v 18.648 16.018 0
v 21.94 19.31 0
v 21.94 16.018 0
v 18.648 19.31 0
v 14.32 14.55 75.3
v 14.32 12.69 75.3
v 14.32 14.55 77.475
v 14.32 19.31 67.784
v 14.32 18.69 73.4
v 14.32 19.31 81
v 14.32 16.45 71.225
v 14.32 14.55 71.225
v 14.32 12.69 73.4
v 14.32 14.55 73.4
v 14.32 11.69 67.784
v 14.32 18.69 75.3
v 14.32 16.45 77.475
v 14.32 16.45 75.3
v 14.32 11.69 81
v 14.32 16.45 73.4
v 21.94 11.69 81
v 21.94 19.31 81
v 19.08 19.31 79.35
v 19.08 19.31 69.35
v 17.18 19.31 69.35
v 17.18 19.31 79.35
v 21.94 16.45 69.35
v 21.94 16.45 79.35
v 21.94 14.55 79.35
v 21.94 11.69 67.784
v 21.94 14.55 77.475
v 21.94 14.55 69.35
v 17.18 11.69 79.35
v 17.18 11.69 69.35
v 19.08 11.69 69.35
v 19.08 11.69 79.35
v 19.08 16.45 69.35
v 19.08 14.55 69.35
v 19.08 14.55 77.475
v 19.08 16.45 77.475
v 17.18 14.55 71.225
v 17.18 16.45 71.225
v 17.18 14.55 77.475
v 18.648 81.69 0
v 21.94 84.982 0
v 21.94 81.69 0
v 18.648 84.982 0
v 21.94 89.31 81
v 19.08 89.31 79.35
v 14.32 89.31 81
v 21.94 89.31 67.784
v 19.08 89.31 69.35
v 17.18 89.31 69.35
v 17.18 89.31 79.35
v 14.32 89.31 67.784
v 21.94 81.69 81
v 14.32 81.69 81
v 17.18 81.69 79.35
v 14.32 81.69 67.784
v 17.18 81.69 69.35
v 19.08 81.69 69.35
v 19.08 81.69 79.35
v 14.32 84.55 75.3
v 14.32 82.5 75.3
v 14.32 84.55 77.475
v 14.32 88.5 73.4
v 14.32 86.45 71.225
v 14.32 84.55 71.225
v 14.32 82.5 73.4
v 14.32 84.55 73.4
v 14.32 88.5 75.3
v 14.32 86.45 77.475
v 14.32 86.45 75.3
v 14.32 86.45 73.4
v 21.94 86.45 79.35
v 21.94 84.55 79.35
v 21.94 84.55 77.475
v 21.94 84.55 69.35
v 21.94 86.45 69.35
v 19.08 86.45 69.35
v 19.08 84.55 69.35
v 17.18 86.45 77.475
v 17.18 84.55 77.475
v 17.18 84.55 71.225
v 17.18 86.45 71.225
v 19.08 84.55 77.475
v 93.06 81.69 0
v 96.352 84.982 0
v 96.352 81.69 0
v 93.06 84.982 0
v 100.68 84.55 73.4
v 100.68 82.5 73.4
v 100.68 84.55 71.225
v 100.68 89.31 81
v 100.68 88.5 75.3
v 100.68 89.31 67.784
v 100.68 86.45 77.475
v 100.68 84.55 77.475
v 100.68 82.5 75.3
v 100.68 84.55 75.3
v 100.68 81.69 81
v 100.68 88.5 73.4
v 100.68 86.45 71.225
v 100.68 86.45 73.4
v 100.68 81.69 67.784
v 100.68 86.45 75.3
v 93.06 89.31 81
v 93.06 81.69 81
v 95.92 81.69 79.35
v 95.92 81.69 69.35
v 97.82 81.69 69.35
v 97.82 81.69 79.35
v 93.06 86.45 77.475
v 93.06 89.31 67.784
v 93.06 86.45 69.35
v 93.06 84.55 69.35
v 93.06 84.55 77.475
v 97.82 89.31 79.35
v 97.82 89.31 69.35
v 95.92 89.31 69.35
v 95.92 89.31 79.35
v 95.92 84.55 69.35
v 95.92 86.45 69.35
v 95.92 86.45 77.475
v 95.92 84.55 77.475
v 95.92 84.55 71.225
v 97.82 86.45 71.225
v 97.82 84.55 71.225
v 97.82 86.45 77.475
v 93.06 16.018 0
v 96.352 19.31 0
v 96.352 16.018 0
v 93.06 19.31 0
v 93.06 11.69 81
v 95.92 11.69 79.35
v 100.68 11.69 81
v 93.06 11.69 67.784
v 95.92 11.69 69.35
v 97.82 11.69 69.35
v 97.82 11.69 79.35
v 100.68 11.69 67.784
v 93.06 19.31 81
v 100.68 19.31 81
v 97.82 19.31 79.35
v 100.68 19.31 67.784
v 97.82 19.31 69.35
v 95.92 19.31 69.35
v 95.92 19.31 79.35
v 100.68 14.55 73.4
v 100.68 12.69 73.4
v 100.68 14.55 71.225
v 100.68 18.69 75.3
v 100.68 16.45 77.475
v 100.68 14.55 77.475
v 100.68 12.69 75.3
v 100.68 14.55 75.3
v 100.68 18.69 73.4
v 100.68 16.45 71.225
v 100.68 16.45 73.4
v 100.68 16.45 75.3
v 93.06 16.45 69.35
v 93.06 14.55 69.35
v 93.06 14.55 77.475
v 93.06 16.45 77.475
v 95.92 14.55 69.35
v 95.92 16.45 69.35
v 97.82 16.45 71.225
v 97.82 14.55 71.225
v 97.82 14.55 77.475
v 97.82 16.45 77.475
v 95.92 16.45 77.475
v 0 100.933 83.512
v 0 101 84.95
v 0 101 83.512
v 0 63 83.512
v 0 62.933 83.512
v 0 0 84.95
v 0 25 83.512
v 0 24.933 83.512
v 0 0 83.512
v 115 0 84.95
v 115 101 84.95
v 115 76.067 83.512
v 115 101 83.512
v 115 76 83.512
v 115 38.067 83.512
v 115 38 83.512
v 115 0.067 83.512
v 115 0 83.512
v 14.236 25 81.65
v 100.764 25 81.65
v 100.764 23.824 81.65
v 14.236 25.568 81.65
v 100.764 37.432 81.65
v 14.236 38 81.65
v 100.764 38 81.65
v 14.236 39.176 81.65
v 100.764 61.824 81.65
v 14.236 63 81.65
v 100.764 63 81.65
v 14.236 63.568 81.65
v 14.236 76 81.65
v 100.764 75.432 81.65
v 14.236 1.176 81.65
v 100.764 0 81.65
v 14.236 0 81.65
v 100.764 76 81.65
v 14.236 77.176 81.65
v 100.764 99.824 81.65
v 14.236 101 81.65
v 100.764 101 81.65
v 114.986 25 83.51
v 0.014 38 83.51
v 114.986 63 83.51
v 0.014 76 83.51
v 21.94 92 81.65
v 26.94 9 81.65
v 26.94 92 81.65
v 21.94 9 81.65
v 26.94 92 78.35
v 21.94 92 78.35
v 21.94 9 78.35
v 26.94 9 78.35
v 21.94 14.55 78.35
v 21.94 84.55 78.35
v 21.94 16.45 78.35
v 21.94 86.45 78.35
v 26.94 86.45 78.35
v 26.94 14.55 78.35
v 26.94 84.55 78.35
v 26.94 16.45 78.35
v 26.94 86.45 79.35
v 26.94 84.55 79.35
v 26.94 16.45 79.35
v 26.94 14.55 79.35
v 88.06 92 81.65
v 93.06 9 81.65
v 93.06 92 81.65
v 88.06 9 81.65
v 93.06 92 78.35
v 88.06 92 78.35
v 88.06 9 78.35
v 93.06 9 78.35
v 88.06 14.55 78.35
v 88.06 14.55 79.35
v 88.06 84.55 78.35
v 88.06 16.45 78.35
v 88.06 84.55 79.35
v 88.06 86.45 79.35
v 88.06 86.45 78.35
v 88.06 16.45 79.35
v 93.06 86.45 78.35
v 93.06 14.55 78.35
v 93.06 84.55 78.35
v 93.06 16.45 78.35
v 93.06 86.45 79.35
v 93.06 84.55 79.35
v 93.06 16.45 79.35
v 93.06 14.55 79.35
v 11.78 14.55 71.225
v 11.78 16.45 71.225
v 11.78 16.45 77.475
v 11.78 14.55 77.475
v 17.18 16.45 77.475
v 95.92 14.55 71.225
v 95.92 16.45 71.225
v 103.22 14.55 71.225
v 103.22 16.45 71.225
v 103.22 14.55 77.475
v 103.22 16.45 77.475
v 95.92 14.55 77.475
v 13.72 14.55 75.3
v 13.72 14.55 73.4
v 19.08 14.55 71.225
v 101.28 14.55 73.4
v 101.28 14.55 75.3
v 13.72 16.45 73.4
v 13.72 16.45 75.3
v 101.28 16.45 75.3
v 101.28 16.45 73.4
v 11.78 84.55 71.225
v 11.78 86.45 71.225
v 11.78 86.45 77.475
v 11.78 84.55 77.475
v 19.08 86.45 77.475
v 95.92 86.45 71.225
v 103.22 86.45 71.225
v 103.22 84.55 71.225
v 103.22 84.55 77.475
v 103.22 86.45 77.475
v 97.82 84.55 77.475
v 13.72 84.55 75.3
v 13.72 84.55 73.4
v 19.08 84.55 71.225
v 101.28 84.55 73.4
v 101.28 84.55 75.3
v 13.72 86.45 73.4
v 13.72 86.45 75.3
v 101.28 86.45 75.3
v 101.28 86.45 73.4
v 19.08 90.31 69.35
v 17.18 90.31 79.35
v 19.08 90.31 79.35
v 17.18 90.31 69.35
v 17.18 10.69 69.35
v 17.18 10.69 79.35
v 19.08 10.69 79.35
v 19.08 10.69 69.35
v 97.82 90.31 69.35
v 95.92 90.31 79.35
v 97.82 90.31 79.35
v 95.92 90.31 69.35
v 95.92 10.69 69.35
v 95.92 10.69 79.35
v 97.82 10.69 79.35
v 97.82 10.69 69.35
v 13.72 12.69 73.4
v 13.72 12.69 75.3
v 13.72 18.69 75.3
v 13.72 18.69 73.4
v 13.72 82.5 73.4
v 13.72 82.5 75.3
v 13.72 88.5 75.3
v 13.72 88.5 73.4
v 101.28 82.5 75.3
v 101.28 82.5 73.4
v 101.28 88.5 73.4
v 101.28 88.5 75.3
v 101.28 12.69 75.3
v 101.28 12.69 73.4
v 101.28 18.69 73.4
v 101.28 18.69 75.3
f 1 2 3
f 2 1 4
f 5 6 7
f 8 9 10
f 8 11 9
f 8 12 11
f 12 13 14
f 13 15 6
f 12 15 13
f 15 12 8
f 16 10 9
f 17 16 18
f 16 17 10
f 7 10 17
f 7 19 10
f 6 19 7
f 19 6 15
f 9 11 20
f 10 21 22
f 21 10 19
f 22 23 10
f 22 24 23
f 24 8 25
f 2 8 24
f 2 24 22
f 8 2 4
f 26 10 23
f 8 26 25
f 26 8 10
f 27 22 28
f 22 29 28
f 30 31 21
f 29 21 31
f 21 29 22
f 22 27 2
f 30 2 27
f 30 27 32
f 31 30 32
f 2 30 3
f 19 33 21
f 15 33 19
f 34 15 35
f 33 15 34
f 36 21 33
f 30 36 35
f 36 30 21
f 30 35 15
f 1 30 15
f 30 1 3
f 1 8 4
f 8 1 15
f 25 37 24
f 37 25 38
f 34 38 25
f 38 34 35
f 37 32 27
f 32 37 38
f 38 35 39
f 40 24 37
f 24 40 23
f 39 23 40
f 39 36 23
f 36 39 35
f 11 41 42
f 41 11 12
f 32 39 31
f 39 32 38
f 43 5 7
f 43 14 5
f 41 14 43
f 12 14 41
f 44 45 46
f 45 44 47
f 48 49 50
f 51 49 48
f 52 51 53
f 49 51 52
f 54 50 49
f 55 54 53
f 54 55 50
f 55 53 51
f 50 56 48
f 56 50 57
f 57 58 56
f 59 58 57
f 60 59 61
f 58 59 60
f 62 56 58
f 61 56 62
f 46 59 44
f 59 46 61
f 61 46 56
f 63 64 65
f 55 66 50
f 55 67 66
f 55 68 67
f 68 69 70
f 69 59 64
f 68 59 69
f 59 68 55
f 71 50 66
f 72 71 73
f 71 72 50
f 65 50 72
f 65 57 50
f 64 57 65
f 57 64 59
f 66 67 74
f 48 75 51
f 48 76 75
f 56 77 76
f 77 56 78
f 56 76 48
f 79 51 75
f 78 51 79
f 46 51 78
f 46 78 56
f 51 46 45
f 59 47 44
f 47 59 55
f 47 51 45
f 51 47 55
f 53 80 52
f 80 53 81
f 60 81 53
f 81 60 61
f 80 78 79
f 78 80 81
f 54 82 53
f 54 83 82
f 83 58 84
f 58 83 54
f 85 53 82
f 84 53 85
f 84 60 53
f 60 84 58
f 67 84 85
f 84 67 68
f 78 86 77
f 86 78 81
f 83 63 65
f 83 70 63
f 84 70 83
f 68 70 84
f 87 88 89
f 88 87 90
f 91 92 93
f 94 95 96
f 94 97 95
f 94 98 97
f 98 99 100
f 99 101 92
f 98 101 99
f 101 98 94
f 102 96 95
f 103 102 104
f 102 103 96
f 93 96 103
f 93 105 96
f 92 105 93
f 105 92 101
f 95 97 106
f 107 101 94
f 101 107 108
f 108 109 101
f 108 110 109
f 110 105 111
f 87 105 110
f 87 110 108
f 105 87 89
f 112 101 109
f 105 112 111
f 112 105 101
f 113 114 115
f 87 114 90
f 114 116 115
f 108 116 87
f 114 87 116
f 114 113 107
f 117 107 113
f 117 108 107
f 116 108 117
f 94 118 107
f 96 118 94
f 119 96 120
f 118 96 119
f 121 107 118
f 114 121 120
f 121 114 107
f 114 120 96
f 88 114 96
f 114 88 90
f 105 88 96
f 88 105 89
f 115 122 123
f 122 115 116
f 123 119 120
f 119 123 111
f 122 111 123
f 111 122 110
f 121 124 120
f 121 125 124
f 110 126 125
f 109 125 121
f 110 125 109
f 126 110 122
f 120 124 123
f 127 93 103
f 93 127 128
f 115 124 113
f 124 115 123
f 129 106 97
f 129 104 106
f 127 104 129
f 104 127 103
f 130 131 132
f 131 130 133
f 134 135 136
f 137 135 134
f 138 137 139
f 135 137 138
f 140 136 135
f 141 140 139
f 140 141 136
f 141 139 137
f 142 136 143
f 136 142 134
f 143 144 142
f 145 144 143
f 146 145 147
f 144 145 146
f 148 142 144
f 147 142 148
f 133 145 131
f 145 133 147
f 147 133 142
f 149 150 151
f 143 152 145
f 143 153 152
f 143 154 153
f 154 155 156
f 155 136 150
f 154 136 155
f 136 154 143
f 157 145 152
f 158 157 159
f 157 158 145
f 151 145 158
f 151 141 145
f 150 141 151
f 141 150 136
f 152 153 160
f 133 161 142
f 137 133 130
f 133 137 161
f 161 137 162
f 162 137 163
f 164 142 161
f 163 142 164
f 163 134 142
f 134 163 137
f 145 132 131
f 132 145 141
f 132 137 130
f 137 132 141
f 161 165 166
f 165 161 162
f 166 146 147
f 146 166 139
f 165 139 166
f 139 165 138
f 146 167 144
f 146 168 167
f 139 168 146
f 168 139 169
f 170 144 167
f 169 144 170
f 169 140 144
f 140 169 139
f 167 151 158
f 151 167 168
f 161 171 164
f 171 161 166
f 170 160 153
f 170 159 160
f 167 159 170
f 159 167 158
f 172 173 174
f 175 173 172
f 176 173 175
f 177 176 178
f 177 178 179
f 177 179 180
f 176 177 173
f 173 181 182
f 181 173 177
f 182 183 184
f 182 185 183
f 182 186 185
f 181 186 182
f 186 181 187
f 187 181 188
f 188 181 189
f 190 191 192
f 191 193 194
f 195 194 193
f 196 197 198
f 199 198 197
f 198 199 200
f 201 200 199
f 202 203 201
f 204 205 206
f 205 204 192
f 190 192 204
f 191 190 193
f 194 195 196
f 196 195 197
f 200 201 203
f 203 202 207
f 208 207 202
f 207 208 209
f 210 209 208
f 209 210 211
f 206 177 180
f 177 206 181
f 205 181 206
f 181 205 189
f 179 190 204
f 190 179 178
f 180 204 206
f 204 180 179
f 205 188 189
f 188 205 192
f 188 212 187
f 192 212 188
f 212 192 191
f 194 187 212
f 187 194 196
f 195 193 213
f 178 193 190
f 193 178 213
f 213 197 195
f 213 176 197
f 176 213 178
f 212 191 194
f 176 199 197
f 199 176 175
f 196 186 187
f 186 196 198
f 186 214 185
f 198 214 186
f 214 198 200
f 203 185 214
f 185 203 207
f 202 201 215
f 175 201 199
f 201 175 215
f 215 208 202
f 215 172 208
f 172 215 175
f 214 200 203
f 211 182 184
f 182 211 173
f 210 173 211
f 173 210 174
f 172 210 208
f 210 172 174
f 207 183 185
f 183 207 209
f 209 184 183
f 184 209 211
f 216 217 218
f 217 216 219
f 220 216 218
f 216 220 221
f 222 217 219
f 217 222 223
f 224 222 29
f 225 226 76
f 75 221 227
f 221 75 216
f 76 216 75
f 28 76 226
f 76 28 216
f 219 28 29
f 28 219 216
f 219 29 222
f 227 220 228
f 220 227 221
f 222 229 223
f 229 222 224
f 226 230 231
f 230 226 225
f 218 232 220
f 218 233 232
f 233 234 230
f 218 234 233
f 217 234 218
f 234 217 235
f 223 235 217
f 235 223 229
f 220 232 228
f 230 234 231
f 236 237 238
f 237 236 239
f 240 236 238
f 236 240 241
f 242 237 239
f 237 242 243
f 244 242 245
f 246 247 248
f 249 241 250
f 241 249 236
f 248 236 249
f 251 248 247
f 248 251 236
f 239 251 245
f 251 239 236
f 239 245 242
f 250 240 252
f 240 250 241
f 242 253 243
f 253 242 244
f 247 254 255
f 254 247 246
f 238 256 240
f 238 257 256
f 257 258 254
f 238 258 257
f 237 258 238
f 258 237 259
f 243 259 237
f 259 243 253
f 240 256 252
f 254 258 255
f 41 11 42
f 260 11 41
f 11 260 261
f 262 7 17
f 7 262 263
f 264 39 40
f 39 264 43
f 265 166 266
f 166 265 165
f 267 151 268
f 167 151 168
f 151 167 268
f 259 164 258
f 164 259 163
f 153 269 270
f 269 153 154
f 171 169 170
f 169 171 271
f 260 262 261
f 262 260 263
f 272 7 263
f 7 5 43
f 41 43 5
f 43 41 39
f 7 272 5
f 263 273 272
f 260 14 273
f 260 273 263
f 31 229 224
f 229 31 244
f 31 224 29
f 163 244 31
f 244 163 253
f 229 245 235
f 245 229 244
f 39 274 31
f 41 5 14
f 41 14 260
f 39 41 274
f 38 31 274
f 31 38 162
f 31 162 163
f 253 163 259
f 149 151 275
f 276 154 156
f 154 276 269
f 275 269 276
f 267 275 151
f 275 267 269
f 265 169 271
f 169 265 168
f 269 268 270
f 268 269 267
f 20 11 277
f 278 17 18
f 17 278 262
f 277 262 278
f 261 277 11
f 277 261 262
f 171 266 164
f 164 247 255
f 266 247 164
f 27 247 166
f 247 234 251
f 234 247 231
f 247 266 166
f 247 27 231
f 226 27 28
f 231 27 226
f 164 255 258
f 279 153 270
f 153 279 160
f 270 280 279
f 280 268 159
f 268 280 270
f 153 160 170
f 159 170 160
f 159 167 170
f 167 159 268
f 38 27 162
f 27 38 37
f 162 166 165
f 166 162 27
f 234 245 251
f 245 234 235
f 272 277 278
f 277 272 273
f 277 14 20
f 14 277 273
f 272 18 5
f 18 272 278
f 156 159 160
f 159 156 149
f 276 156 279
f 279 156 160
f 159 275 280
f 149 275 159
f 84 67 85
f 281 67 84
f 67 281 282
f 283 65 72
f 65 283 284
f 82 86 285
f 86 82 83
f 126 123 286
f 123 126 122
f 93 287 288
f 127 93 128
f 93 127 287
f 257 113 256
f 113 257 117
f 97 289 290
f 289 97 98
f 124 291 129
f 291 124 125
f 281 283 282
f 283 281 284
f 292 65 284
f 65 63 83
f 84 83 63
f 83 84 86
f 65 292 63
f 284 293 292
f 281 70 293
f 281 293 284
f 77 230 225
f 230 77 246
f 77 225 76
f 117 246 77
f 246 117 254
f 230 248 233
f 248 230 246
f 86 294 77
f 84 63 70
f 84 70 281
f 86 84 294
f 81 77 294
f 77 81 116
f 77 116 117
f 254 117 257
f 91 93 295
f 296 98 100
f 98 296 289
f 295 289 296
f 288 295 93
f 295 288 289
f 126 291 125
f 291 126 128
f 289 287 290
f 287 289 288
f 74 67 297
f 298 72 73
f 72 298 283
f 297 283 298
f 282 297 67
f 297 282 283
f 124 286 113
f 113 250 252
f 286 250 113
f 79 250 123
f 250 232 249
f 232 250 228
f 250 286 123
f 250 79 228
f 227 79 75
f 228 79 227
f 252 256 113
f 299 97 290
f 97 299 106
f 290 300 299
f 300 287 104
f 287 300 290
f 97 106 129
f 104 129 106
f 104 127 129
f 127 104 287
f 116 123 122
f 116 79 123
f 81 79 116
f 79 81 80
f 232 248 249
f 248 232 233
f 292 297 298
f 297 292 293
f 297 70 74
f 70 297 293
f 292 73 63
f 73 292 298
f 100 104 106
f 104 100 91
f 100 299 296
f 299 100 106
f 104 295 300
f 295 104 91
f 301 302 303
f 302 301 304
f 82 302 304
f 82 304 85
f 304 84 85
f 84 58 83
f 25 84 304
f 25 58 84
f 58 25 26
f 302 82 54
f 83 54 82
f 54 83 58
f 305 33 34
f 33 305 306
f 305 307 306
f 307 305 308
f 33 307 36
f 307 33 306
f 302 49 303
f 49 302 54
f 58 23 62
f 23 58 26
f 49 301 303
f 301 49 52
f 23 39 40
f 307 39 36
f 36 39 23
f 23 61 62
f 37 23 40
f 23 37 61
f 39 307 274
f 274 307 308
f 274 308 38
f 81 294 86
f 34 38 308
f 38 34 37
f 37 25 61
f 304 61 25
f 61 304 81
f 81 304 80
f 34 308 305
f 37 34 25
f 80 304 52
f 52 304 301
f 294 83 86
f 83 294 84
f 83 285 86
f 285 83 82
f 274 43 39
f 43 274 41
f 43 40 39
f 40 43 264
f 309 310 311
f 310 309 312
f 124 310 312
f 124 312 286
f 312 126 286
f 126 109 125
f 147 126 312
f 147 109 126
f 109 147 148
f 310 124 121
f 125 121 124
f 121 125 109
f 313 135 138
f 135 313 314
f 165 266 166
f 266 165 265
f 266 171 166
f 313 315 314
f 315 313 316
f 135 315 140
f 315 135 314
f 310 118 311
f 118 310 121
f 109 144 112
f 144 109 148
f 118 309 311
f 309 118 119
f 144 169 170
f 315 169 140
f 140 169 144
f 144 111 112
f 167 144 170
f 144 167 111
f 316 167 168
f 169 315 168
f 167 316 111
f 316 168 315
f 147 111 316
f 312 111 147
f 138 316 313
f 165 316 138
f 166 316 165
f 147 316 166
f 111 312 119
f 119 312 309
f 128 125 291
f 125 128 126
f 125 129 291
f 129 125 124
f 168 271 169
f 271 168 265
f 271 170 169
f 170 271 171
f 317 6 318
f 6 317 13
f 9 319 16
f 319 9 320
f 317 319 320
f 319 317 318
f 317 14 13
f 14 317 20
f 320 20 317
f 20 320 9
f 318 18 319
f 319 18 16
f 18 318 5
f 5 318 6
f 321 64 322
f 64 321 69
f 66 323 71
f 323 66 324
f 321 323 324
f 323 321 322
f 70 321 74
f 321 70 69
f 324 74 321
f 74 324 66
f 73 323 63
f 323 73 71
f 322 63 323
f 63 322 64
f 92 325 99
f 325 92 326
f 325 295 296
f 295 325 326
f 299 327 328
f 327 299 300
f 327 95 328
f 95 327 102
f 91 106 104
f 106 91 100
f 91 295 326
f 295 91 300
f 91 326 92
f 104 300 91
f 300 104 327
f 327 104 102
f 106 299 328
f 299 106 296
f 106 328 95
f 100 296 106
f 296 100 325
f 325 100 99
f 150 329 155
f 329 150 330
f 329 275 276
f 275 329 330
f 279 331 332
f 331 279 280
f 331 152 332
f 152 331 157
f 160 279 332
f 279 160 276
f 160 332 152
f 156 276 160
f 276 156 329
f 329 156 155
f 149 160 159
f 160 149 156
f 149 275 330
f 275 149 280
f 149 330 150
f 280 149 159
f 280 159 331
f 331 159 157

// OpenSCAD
$fn=50;
union()
{
	union()
	{
		translate([14.32,11.689999,0])
		{
			translate([3.81,3.81,0])
			{
				rotate(0,[0,0,1])
				{
					translate([-3.81,-3.81,0])
					{
						translate([7.62,0,0])
						{
							rotate(-90,[0,1,0])
							{
								difference()
								{
									color("Peru")
									{
										cube([81,7.62,7.62]);
									}
									translate([0,0,-0.1])
									{
										linear_extrude(height=7.8199997,center=false,convecity=10,twist=0,slices=1)
										{
											polygon(points=[[-0.1,-0.1],[-0.1,4.334375],[69.35,-0.1],],paths=undef,convexity=10);
										}
									}
									translate([0,-0.1,7.62])
									{
										rotate(-90,[1,0,0])
										{
											linear_extrude(height=7.8199997,center=false,convecity=10,twist=0,slices=1)
											{
												polygon(points=[[-0.1,-0.1],[-0.1,4.334375],[69.35,-0.1],],paths=undef,convexity=10);
											}
										}
									}
									translate([69.35,-0.1,2.86])
									{
										cube([10,7.8199997,1.9]);
									}
									translate([71.225,2.86,-0.1])
									{
										cube([6.25,1.9,7.8199997]);
									}
									translate([69.35,2.86,-0.1])
									{
										cube([6.25,1.9,3.81]);
									}
								}
							}
						}
					}
				}
			}
		}
		translate([14.32,81.69,0])
		{
			translate([3.81,3.81,0])
			{
				rotate(-90,[0,0,1])
				{
					translate([-3.81,-3.81,0])
					{
						translate([7.62,0,0])
						{
							rotate(-90,[0,1,0])
							{
								difference()
								{
									color("Peru")
									{
										cube([81,7.62,7.62]);
									}
									translate([0,0,-0.1])
									{
										linear_extrude(height=7.8199997,center=false,convecity=10,twist=0,slices=1)
										{
											polygon(points=[[-0.1,-0.1],[-0.1,4.334375],[69.35,-0.1],],paths=undef,convexity=10);
										}
									}
									translate([0,-0.1,7.62])
									{
										rotate(-90,[1,0,0])
										{
											linear_extrude(height=7.8199997,center=false,convecity=10,twist=0,slices=1)
											{
												polygon(points=[[-0.1,-0.1],[-0.1,4.334375],[69.35,-0.1],],paths=undef,convexity=10);
											}
										}
									}
									translate([69.35,2.86,-0.1])
									{
										cube([10,1.9,7.8199997]);
									}
									translate([71.225,-0.1,2.86])
									{
										cube([6.25,7.8199997,1.9]);
									}
									translate([69.35,3.81,2.86])
									{
										cube([6.25,7.62,1.9]);
									}
								}
							}
						}
					}
				}
			}
		}
		translate([93.06,81.69,0])
		{
			translate([3.81,3.81,0])
			{
				rotate(180,[0,0,1])
				{
					translate([-3.81,-3.81,0])
					{
						translate([7.62,0,0])
						{
							rotate(-90,[0,1,0])
							{
								difference()
								{
									color("Peru")
									{
										cube([81,7.62,7.62]);
									}
									translate([0,0,-0.1])
									{
										linear_extrude(height=7.8199997,center=false,convecity=10,twist=0,slices=1)
										{
											polygon(points=[[-0.1,-0.1],[-0.1,4.334375],[69.35,-0.1],],paths=undef,convexity=10);
										}
									}
									translate([0,-0.1,7.62])
									{
										rotate(-90,[1,0,0])
										{
											linear_extrude(height=7.8199997,center=false,convecity=10,twist=0,slices=1)
											{
												polygon(points=[[-0.1,-0.1],[-0.1,4.334375],[69.35,-0.1],],paths=undef,convexity=10);
											}
										}
									}
									translate([69.35,-0.1,2.86])
									{
										cube([10,7.8199997,1.9]);
									}
									translate([71.225,2.86,-0.1])
									{
										cube([6.25,1.9,7.8199997]);
									}
									translate([69.35,2.86,-0.1])
									{
										cube([6.25,1.9,3.81]);
									}
								}
							}
						}
					}
				}
			}
		}
		translate([93.06,11.689999,0])
		{
			translate([3.81,3.81,0])
			{
				rotate(90,[0,0,1])
				{
					translate([-3.81,-3.81,0])
					{
						translate([7.62,0,0])
						{
							rotate(-90,[0,1,0])
							{
								difference()
								{
									color("Peru")
									{
										cube([81,7.62,7.62]);
									}
									translate([0,0,-0.1])
									{
										linear_extrude(height=7.8199997,center=false,convecity=10,twist=0,slices=1)
										{
											polygon(points=[[-0.1,-0.1],[-0.1,4.334375],[69.35,-0.1],],paths=undef,convexity=10);
										}
									}
									translate([0,-0.1,7.62])
									{
										rotate(-90,[1,0,0])
										{
											linear_extrude(height=7.8199997,center=false,convecity=10,twist=0,slices=1)
											{
												polygon(points=[[-0.1,-0.1],[-0.1,4.334375],[69.35,-0.1],],paths=undef,convexity=10);
											}
										}
									}
									translate([69.35,2.86,-0.1])
									{
										cube([10,1.9,7.8199997]);
									}
									translate([71.225,-0.1,2.86])
									{
										cube([6.25,7.8199997,1.9]);
									}
									translate([69.35,3.81,2.86])
									{
										cube([6.25,7.62,1.9]);
									}
								}
							}
						}
					}
				}
			}
		}
	}
	translate([0,0,78.35])
	{
		union()
		{
			union()
			{
				translate([0,0,3.3])
				{
					difference()
					{
						color("SaddleBrown")
						{
							cube([115,25,3.3]);
						}
						translate([0,25.1,0])
						{
							rotate(90,[1,0,0])
							{
								linear_extrude(height=25.2,center=false,convecity=10,twist=0,slices=1)
								{
									polygon(points=[[-0.1,-0.1],[-0.1,1.875],[15,-0.1],],paths=undef,convexity=10);
								}
							}
						}
						translate([115,25,0])
						{
							rotate(180,[0,0,1])
							{
								translate([0,25.1,0])
								{
									rotate(90,[1,0,0])
									{
										linear_extrude(height=25.2,center=false,convecity=10,twist=0,slices=1)
										{
											polygon(points=[[-0.1,-0.1],[-0.1,1.875],[15,-0.1],],paths=undef,convexity=10);
										}
									}
								}
							}
						}
					}
				}
				translate([0,25,3.3])
				{
					difference()
					{
						color("SaddleBrown")
						{
							cube([115,13,3.3]);
						}
						translate([0,13.1,0])
						{
							rotate(90,[1,0,0])
							{
								linear_extrude(height=13.2,center=false,convecity=10,twist=0,slices=1)
								{
									polygon(points=[[-0.1,-0.1],[-0.1,1.875],[15,-0.1],],paths=undef,convexity=10);
								}
							}
						}
						translate([115,13,0])
						{
							rotate(180,[0,0,1])
							{
								translate([0,13.1,0])
								{
									rotate(90,[1,0,0])
									{
										linear_extrude(height=13.2,center=false,convecity=10,twist=0,slices=1)
										{
											polygon(points=[[-0.1,-0.1],[-0.1,1.875],[15,-0.1],],paths=undef,convexity=10);
										}
									}
								}
							}
						}
					}
				}
				translate([0,38,3.3])
				{
					difference()
					{
						color("SaddleBrown")
						{
							cube([115,25,3.3]);
						}
						translate([0,25.1,0])
						{
							rotate(90,[1,0,0])
							{
								linear_extrude(height=25.2,center=false,convecity=10,twist=0,slices=1)
								{
									polygon(points=[[-0.1,-0.1],[-0.1,1.875],[15,-0.1],],paths=undef,convexity=10);
								}
							}
						}
						translate([115,25,0])
						{
							rotate(180,[0,0,1])
							{
								translate([0,25.1,0])
								{
									rotate(90,[1,0,0])
									{
										linear_extrude(height=25.2,center=false,convecity=10,twist=0,slices=1)
										{
											polygon(points=[[-0.1,-0.1],[-0.1,1.875],[15,-0.1],],paths=undef,convexity=10);
										}
									}
								}
							}
						}
					}
				}
				translate([0,63,3.3])
				{
					difference()
					{
						color("SaddleBrown")
						{
							cube([115,13,3.3]);
						}
						translate([0,13.1,0])
						{
							rotate(90,[1,0,0])
							{
								linear_extrude(height=13.2,center=false,convecity=10,twist=0,slices=1)
								{
									polygon(points=[[-0.1,-0.1],[-0.1,1.875],[15,-0.1],],paths=undef,convexity=10);
								}
							}
						}
						translate([115,13,0])
						{
							rotate(180,[0,0,1])
							{
								translate([0,13.1,0])
								{
									rotate(90,[1,0,0])
									{
										linear_extrude(height=13.2,center=false,convecity=10,twist=0,slices=1)
										{
											polygon(points=[[-0.1,-0.1],[-0.1,1.875],[15,-0.1],],paths=undef,convexity=10);
										}
									}
								}
							}
						}
					}
				}
				translate([0,76,3.3])
				{
					difference()
					{
						color("SaddleBrown")
						{
							cube([115,25,3.3]);
						}
						translate([0,25.1,0])
						{
							rotate(90,[1,0,0])
							{
								linear_extrude(height=25.2,center=false,convecity=10,twist=0,slices=1)
								{
									polygon(points=[[-0.1,-0.1],[-0.1,1.875],[15,-0.1],],paths=undef,convexity=10);
								}
							}
						}
						translate([115,25,0])
						{
							rotate(180,[0,0,1])
							{
								translate([0,25.1,0])
								{
									rotate(90,[1,0,0])
									{
										linear_extrude(height=25.2,center=false,convecity=10,twist=0,slices=1)
										{
											polygon(points=[[-0.1,-0.1],[-0.1,1.875],[15,-0.1],],paths=undef,convexity=10);
										}
									}
								}
							}
						}
					}
				}
			}
			union()
			{
				translate([21.940002,9,0])
				{
					translate([0,83,0])
					{
						rotate(-90,[0,0,1])
						{
							color("SandyBrown")
							{
								cube([83,5,3.3]);
							}
						}
					}
				}
				translate([88.06,9,0])
				{
					translate([0,83,0])
					{
						rotate(-90,[0,0,1])
						{
							color("SandyBrown")
							{
								cube([83,5,3.3]);
							}
						}
					}
				}
			}
		}
	}
	union()
	{
		translate([11.779999,14.549999,69.35])
		{
			translate([0,1.9,0])
			{
				rotate(90,[1,0,0])
				{
					difference()
					{
						color("BurlyWood")
						{
							cube([91.44,10,1.9]);
						}
						union()
						{
							translate([-0.1,-0.1,-0.1])
							{
								cube([7.4000006,1.975,2.1]);
							}
							translate([0,8.225,0])
							{
								translate([-0.1,-0.1,-0.1])
								{
									cube([10.26,1.975,2.1]);
								}
							}
						}
						translate([84.24,0,0])
						{
							union()
							{
								translate([-0.1,-0.1,-0.1])
								{
									cube([7.4000006,1.975,2.1]);
								}
								translate([-2.86,8.225,0])
								{
									translate([-0.1,-0.1,-0.1])
									{
										cube([10.26,1.975,2.1]);
									}
								}
							}
						}
						translate([1.9399999,4.05,-0.1])
						{
							cube([0.6,1.9,2.1]);
						}
						translate([88.9,4.05,-0.1])
						{
							cube([0.6,1.9,2.1]);
						}
					}
				}
			}
		}
		translate([11.779999,84.55,69.35])
		{
			translate([0,1.9,0])
			{
				rotate(90,[1,0,0])
				{
					difference()
					{
						color("BurlyWood")
						{
							cube([91.44,10,1.9]);
						}
						union()
						{
							translate([-0.1,-0.1,-0.1])
							{
								cube([7.4000006,1.975,2.1]);
							}
							translate([0,8.225,0])
							{
								translate([-0.1,-0.1,-0.1])
								{
									cube([10.26,1.975,2.1]);
								}
							}
						}
						translate([84.24,0,0])
						{
							union()
							{
								translate([-0.1,-0.1,-0.1])
								{
									cube([7.4000006,1.975,2.1]);
								}
								translate([-2.86,8.225,0])
								{
									translate([-0.1,-0.1,-0.1])
									{
										cube([10.26,1.975,2.1]);
									}
								}
							}
						}
						translate([1.9399999,4.05,-0.1])
						{
							cube([0.6,1.9,2.1]);
						}
						translate([88.9,4.05,-0.1])
						{
							cube([0.6,1.9,2.1]);
						}
					}
				}
			}
		}
		translate([17.18,10.689999,69.35])
		{
			translate([1.9,79.62,0])
			{
				rotate(-90,[0,1,0])
				{
					rotate(-90,[0,0,1])
					{
						difference()
						{
							color("BurlyWood")
							{
								cube([79.62,10,1.9]);
							}
							translate([3.86,1.875,-0.1])
							{
								cube([1.9,6.25,2.1]);
							}
							translate([73.86001,1.875,-0.1])
							{
								cube([1.9,6.25,2.1]);
							}
						}
					}
				}
			}
		}
		translate([95.92,10.689999,69.35])
		{
			translate([1.9,79.62,0])
			{
				rotate(-90,[0,1,0])
				{
					rotate(-90,[0,0,1])
					{
						difference()
						{
							color("BurlyWood")
							{
								cube([79.62,10,1.9]);
							}
							translate([3.86,1.875,-0.1])
							{
								cube([1.9,6.25,2.1]);
							}
							translate([73.86001,1.875,-0.1])
							{
								cube([1.9,6.25,2.1]);
							}
						}
					}
				}
			}
		}
	}
	union()
	{
		translate([13.720001,12.689999,73.4])
		{
			rotate(90,[0,1,0])
			{
				rotate(90,[0,0,1])
				{
					color("SaddleBrown")
					{
						cube([6,1.9,0.6]);
					}
				}
			}
		}
		translate([13.720001,82.5,73.4])
		{
			rotate(90,[0,1,0])
			{
				rotate(90,[0,0,1])
				{
					color("SaddleBrown")
					{
						cube([6,1.9,0.6]);
					}
				}
			}
		}
		translate([100.68,82.5,73.4])
		{
			rotate(90,[0,1,0])
			{
				rotate(90,[0,0,1])
				{
					color("SaddleBrown")
					{
						cube([6,1.9,0.6]);
					}
				}
			}
		}
		translate([100.68,12.689999,73.4])
		{
			rotate(90,[0,1,0])
			{
				rotate(90,[0,0,1])
				{
					color("SaddleBrown")
					{
						cube([6,1.9,0.6]);
					}
				}
			}
		}
	}
}
